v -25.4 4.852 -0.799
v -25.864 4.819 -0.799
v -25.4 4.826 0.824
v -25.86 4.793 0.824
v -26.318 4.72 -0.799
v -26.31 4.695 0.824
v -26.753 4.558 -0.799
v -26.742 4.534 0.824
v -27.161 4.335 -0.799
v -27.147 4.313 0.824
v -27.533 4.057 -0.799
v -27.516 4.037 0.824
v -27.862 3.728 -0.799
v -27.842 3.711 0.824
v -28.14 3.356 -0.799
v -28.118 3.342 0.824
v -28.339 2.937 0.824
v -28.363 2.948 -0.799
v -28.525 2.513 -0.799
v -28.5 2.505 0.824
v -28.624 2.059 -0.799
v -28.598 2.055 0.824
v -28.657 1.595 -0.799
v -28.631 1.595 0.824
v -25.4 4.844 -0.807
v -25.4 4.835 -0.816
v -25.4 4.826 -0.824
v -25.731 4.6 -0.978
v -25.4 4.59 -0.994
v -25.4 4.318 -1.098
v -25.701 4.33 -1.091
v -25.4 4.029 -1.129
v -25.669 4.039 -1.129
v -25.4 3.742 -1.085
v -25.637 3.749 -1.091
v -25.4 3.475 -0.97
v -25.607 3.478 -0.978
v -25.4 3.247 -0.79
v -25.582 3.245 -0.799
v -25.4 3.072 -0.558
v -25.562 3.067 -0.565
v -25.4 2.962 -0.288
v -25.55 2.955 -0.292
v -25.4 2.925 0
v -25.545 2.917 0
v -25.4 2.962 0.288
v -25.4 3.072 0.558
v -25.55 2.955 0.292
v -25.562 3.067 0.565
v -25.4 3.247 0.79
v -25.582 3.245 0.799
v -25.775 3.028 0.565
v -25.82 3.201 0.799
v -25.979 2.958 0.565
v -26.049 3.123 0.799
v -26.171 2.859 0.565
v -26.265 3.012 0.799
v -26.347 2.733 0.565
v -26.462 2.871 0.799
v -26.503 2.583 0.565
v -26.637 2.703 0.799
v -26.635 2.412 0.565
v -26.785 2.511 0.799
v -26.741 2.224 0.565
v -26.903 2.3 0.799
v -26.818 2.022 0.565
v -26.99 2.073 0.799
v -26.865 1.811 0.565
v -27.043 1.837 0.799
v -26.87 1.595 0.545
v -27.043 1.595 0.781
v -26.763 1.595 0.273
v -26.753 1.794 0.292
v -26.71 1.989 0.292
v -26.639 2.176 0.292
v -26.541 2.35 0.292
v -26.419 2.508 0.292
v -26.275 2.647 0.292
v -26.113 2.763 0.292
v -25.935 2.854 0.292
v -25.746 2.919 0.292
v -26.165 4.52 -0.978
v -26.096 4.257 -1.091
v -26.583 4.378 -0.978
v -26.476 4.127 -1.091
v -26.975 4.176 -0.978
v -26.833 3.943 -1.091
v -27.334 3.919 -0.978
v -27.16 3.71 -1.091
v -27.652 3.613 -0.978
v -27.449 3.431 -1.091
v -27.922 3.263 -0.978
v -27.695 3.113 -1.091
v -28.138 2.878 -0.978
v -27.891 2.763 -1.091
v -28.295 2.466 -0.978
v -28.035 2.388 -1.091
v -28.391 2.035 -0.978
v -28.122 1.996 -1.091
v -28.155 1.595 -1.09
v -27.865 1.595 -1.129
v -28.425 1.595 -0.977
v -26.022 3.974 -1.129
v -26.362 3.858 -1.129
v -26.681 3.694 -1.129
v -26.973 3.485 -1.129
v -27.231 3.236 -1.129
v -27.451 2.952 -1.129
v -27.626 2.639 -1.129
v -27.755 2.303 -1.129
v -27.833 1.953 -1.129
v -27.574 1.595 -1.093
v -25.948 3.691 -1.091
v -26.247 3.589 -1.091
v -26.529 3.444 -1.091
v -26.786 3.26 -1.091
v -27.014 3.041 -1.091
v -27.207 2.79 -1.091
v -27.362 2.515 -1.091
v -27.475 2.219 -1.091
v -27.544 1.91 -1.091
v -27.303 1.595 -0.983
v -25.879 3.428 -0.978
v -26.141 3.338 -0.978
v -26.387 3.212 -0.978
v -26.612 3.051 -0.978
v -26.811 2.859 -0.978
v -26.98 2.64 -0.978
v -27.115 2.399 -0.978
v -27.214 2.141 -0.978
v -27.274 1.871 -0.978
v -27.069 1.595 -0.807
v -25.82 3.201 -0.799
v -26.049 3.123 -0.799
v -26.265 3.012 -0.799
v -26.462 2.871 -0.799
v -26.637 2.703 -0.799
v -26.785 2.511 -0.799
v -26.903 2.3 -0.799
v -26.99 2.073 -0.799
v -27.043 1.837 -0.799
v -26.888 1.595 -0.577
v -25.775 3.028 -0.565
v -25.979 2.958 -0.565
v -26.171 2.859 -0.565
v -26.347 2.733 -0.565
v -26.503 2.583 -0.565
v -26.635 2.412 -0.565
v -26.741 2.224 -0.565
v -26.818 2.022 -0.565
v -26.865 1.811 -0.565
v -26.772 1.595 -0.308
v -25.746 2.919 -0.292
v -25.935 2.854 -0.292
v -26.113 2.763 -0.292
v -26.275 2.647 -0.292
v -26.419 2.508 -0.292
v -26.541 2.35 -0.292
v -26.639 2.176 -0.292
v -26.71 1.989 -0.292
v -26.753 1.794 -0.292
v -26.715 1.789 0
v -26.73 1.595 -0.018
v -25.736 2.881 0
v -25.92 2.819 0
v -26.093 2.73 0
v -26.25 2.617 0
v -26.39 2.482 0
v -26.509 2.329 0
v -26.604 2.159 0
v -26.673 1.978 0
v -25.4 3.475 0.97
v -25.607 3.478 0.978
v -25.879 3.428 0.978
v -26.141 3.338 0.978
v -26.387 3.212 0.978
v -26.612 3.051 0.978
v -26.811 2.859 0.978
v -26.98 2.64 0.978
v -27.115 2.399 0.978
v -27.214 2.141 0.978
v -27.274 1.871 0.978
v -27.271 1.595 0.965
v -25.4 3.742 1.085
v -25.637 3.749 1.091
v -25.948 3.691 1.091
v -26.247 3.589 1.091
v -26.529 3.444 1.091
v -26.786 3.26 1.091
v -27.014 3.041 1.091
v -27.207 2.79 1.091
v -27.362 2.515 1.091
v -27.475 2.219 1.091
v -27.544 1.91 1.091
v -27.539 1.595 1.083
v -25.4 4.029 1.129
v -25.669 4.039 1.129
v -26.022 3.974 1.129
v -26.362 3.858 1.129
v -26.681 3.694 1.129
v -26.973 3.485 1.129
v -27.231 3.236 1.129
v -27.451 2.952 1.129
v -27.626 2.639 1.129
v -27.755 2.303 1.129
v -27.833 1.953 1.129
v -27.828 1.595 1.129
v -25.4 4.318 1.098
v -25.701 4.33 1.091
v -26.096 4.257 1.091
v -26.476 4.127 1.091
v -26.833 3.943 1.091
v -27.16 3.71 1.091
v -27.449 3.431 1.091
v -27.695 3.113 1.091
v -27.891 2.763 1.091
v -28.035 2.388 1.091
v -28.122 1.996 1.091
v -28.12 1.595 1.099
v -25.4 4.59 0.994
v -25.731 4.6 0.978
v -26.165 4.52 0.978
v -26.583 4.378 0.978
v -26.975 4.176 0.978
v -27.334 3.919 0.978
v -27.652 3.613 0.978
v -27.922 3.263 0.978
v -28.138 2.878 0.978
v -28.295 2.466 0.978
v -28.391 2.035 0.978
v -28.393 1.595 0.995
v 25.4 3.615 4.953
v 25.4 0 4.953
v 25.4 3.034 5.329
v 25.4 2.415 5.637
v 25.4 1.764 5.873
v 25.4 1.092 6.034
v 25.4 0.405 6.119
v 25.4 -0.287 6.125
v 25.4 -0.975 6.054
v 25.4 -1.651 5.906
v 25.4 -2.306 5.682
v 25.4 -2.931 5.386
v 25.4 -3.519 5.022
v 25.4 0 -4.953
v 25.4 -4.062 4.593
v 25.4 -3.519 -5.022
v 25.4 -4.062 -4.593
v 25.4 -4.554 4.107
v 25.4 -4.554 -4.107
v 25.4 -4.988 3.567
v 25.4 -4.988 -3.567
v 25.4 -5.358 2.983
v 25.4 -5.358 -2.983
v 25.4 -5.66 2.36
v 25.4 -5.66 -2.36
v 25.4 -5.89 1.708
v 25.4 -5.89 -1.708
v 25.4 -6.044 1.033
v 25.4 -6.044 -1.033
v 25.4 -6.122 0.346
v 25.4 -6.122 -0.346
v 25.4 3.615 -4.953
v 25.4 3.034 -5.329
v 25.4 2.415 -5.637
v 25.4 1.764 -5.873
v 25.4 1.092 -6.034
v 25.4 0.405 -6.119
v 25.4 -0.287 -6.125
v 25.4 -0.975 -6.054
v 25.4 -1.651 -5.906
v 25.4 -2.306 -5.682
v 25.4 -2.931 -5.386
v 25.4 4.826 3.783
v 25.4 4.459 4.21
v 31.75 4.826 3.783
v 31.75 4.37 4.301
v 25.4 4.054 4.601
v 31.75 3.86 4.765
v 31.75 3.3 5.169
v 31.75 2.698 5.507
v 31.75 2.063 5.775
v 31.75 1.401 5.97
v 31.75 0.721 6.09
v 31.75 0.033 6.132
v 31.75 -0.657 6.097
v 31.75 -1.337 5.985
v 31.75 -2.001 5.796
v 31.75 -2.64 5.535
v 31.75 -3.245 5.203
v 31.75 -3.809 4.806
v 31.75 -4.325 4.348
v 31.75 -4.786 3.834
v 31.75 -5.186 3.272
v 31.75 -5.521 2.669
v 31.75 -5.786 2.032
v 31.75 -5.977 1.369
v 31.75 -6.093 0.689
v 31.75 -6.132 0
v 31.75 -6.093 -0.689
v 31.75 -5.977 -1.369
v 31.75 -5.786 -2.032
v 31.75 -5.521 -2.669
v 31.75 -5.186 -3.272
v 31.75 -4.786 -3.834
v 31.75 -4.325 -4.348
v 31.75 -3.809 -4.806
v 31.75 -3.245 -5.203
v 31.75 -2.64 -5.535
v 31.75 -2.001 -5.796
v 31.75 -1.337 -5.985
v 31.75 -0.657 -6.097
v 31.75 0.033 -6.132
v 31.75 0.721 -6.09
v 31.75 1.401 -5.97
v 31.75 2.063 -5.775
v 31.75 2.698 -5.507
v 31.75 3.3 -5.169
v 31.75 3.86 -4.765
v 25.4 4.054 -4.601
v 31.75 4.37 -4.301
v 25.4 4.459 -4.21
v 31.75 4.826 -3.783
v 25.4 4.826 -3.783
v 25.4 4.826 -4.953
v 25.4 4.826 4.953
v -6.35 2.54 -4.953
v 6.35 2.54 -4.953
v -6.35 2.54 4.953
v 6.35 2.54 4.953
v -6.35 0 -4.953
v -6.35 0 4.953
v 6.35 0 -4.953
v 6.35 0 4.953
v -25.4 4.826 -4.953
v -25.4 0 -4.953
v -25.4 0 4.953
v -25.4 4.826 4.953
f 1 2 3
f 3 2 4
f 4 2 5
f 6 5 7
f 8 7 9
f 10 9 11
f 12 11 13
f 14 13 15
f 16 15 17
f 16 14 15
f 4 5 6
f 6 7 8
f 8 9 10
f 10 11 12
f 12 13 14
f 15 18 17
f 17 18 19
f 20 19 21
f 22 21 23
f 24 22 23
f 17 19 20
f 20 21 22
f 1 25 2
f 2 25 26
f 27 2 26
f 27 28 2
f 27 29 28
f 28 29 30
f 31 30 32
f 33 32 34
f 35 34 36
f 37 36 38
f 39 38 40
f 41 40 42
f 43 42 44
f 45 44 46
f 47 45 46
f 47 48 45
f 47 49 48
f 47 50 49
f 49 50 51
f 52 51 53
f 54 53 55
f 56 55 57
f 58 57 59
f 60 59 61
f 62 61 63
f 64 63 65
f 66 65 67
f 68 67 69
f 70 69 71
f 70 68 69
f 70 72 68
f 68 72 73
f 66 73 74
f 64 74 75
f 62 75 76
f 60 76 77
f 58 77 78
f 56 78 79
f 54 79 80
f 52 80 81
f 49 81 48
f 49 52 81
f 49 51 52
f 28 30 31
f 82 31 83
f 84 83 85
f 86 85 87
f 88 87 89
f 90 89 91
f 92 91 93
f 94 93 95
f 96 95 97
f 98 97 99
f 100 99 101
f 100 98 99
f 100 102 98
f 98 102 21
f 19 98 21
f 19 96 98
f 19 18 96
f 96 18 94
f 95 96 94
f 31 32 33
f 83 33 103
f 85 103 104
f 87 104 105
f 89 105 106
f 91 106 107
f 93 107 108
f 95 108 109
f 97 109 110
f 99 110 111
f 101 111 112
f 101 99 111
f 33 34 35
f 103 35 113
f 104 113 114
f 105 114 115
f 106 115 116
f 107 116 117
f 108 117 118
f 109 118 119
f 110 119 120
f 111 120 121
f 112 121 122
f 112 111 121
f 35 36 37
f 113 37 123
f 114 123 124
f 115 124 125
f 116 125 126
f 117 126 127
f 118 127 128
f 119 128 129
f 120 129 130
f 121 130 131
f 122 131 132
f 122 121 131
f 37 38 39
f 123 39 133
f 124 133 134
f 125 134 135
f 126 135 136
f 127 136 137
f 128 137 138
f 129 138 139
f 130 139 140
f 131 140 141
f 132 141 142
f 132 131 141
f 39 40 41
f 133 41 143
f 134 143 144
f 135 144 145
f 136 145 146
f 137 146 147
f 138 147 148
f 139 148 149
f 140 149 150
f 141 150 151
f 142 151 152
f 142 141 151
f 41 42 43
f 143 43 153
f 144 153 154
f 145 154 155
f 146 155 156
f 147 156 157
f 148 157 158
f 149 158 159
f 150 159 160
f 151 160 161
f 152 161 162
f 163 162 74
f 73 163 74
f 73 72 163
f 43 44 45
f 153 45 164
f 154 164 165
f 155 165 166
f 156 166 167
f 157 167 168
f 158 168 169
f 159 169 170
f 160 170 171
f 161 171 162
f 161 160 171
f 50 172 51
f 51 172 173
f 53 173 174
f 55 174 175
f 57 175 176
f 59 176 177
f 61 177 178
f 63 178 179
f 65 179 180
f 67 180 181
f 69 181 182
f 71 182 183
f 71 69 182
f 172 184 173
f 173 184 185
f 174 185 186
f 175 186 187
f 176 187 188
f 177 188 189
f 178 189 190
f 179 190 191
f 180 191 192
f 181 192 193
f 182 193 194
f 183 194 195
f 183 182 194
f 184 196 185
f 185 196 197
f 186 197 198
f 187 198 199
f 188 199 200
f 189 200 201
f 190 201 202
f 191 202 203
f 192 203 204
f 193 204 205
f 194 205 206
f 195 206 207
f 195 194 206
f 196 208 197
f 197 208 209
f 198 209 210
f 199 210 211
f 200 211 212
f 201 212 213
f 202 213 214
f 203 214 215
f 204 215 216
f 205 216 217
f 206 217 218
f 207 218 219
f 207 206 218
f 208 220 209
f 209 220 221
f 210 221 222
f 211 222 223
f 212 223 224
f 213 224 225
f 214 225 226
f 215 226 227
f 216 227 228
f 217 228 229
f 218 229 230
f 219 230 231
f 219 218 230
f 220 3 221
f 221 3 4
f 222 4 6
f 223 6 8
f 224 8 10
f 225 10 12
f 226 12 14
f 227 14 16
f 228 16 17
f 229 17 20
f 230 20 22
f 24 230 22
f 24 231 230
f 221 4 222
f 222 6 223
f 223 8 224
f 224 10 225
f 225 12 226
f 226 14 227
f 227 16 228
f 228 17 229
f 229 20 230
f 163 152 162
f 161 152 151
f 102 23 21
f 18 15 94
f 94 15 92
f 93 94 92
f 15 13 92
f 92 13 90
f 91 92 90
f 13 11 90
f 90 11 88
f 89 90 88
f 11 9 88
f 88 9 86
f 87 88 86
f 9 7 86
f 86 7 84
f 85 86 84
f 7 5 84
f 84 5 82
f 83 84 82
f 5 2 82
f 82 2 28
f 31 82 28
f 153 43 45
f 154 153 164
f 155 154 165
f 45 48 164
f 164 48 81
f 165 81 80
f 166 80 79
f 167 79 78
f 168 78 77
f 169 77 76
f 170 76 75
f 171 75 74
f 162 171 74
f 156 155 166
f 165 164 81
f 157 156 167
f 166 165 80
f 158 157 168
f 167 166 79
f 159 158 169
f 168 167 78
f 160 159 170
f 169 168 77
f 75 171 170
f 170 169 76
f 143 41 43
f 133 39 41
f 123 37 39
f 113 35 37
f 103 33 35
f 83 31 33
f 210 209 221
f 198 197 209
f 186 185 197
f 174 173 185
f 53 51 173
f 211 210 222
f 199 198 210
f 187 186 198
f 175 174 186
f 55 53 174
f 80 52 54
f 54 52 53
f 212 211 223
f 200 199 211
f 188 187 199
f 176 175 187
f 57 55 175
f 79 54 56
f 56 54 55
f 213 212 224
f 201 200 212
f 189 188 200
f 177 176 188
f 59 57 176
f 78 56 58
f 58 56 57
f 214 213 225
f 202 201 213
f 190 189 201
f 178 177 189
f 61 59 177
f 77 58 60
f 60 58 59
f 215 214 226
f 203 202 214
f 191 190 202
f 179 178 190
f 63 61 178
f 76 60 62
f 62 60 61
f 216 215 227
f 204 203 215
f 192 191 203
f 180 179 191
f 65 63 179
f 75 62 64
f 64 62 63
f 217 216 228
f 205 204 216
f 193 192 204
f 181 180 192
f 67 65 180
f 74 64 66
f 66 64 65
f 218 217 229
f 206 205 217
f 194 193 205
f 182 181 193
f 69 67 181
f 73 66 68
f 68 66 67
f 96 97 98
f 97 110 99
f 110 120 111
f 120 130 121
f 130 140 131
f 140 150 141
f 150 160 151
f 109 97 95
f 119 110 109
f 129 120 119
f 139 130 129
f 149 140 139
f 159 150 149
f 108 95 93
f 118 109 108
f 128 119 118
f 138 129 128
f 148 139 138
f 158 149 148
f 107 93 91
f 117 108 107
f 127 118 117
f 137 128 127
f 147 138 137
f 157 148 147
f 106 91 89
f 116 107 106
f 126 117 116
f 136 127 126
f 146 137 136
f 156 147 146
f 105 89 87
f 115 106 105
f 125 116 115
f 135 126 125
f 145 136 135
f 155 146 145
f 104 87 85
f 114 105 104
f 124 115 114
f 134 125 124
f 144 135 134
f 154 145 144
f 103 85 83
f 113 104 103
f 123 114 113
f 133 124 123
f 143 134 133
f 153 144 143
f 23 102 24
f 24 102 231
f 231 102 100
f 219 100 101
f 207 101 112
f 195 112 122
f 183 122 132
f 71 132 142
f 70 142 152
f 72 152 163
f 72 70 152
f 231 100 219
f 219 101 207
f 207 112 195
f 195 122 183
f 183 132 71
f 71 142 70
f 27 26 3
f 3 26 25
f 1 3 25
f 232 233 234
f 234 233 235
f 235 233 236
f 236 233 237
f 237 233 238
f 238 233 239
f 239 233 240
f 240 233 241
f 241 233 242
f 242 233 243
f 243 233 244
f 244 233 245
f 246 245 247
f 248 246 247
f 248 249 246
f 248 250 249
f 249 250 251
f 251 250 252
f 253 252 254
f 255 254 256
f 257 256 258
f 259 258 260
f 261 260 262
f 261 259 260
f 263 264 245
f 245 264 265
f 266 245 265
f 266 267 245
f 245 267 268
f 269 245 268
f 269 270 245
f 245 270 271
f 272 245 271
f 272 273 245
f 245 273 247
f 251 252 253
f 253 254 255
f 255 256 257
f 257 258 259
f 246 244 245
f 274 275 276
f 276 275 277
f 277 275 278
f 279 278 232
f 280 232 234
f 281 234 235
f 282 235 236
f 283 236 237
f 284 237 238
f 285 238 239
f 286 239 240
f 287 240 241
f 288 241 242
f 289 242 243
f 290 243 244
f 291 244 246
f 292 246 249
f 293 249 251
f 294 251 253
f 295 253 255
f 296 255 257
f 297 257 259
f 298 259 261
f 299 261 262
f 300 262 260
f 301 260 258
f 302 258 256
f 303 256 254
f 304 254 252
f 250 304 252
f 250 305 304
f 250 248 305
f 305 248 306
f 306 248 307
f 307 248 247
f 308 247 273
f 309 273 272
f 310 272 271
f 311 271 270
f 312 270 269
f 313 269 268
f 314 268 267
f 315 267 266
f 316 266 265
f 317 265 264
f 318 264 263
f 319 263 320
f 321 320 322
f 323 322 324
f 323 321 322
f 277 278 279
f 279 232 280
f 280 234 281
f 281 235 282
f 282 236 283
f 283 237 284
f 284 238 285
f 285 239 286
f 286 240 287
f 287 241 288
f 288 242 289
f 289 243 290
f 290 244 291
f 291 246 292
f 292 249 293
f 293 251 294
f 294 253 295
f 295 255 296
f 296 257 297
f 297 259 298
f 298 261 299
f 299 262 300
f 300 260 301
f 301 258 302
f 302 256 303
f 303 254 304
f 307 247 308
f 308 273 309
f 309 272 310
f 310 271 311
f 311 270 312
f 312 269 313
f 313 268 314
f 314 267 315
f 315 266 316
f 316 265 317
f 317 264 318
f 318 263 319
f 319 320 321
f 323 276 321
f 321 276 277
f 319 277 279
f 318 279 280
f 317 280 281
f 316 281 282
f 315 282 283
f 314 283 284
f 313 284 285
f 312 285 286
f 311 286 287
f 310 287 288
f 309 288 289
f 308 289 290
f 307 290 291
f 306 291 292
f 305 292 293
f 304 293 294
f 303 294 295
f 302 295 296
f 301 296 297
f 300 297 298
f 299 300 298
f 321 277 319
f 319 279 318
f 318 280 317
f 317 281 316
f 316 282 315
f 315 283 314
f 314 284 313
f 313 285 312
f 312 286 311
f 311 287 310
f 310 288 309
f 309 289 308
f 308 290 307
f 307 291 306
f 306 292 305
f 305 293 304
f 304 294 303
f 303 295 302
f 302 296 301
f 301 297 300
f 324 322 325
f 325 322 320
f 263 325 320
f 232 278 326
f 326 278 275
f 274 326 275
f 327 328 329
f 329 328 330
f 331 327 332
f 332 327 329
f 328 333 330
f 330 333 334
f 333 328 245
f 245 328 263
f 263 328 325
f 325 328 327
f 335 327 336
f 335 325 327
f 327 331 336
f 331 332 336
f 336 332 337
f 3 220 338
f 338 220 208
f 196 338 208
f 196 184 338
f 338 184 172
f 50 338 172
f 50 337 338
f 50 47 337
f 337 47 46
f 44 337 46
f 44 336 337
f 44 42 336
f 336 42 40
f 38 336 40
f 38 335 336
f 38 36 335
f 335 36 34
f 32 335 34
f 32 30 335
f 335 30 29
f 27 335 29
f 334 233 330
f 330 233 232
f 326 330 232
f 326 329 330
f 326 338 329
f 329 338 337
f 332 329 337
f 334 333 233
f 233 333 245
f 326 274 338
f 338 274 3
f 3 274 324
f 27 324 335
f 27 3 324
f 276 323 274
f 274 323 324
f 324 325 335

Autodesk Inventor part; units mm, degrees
ref_plane "YZ Plane" through (0, 0, 0) normal (1, 0, 0) x (0, 1, 0)
ref_plane "XZ Plane" through (0, 0, 0) normal (0, 1, 0) x (-1, 0, 0)
ref_plane "XY Plane" through (0, 0, 0) normal (0, 0, 1) x (1, 0, 0)
sketch "Sketch1" plane through (0, 0, 0) normal (0, 1, 0) x (-1, 0, 0)
  line L0 (-25.4, 4.953) -> (25.4, 4.953)
  line L1 (25.4, 4.953) -> (25.4, -4.953)
  line L2 (25.4, -4.953) -> (-25.4, -4.953)
  line L3 (-25.4, -4.953) -> (-25.4, 4.953)
  line L4 (-25.4, 4.953) -> (25.4, -4.953) construction
  line L5 (25.4, 4.953) -> (-25.4, -4.953) construction
  point P0 (0, 0)
  dimension "d0" = 50.8
  dimension "d1" = 9.906
extrude "Extrusion1" add sketch "Sketch1" along normal blind 4.826
sketch "Sketch2" plane through (-25.4, 0, 4.953) normal (0, 0, 1) x (1, 0, 0)
  line L0 (19.05, 0) -> (19.05, 2.54)
  line L1 (19.05, 2.54) -> (31.75, 2.54)
  line L2 (31.75, 2.54) -> (31.75, 0)
  line L3 (25.4, 0) -> (19.05, 2.54) construction
  line L4 (25.4, 0) -> (31.75, 2.54) construction
  line L5 (19.05, 0) -> (31.75, 0)
  line L6 (50.8, 0) -> (0, 0) projected
  point P0 (25.4, 0)
extrude "Extrusion2" cut sketch "Sketch2" against normal blind 12.7
sketch "Sketch3" plane through (25.4, 0, 4.953) normal (1, 0, 0) x (0, 0, -1)
  arc A0 (1.1698, 4.826) -> (8.7362, 4.826) centre (4.953, 0) ccw
  line L0 (0, 4.826) -> (9.906, 4.826) projected
  line L1 (1.1698, 4.826) -> (8.7362, 4.826)
extrude "Extrusion3" add sketch "Sketch3" along normal blind 6.35
sketch "Sketch4" plane through (-25.4, 0, -4.953) normal (-1, 0, 0) x (0, 0, 1)
  point P0 (4.953, 0)
sketch "Sketch5" plane through (-25.4, 0, -4.953) normal (-1, 0, 0) x (0, 0, 1)
  arc A0 (4.1541, 4.8522) -> (5.7772, 4.826) centre (4.953, 4.0539) ccw
  line L0 (9.906, 1.595) -> (0, 1.595)
  line L1 (9.906, 0) -> (0, 0) projected
  line L2 (4.1541, 4.8522) -> (5.7772, 4.826)
  line L3 (1.1698, 4.826) -> (8.7362, 4.826) projected
  point P0 (4.953, 0)
revolve "Revolution1" add sketch "Sketch5" angle 90 about axis through (-25.4, 1.595, 4.953) along (0, 0, 1)
properties part number "pig_nose_tail"
